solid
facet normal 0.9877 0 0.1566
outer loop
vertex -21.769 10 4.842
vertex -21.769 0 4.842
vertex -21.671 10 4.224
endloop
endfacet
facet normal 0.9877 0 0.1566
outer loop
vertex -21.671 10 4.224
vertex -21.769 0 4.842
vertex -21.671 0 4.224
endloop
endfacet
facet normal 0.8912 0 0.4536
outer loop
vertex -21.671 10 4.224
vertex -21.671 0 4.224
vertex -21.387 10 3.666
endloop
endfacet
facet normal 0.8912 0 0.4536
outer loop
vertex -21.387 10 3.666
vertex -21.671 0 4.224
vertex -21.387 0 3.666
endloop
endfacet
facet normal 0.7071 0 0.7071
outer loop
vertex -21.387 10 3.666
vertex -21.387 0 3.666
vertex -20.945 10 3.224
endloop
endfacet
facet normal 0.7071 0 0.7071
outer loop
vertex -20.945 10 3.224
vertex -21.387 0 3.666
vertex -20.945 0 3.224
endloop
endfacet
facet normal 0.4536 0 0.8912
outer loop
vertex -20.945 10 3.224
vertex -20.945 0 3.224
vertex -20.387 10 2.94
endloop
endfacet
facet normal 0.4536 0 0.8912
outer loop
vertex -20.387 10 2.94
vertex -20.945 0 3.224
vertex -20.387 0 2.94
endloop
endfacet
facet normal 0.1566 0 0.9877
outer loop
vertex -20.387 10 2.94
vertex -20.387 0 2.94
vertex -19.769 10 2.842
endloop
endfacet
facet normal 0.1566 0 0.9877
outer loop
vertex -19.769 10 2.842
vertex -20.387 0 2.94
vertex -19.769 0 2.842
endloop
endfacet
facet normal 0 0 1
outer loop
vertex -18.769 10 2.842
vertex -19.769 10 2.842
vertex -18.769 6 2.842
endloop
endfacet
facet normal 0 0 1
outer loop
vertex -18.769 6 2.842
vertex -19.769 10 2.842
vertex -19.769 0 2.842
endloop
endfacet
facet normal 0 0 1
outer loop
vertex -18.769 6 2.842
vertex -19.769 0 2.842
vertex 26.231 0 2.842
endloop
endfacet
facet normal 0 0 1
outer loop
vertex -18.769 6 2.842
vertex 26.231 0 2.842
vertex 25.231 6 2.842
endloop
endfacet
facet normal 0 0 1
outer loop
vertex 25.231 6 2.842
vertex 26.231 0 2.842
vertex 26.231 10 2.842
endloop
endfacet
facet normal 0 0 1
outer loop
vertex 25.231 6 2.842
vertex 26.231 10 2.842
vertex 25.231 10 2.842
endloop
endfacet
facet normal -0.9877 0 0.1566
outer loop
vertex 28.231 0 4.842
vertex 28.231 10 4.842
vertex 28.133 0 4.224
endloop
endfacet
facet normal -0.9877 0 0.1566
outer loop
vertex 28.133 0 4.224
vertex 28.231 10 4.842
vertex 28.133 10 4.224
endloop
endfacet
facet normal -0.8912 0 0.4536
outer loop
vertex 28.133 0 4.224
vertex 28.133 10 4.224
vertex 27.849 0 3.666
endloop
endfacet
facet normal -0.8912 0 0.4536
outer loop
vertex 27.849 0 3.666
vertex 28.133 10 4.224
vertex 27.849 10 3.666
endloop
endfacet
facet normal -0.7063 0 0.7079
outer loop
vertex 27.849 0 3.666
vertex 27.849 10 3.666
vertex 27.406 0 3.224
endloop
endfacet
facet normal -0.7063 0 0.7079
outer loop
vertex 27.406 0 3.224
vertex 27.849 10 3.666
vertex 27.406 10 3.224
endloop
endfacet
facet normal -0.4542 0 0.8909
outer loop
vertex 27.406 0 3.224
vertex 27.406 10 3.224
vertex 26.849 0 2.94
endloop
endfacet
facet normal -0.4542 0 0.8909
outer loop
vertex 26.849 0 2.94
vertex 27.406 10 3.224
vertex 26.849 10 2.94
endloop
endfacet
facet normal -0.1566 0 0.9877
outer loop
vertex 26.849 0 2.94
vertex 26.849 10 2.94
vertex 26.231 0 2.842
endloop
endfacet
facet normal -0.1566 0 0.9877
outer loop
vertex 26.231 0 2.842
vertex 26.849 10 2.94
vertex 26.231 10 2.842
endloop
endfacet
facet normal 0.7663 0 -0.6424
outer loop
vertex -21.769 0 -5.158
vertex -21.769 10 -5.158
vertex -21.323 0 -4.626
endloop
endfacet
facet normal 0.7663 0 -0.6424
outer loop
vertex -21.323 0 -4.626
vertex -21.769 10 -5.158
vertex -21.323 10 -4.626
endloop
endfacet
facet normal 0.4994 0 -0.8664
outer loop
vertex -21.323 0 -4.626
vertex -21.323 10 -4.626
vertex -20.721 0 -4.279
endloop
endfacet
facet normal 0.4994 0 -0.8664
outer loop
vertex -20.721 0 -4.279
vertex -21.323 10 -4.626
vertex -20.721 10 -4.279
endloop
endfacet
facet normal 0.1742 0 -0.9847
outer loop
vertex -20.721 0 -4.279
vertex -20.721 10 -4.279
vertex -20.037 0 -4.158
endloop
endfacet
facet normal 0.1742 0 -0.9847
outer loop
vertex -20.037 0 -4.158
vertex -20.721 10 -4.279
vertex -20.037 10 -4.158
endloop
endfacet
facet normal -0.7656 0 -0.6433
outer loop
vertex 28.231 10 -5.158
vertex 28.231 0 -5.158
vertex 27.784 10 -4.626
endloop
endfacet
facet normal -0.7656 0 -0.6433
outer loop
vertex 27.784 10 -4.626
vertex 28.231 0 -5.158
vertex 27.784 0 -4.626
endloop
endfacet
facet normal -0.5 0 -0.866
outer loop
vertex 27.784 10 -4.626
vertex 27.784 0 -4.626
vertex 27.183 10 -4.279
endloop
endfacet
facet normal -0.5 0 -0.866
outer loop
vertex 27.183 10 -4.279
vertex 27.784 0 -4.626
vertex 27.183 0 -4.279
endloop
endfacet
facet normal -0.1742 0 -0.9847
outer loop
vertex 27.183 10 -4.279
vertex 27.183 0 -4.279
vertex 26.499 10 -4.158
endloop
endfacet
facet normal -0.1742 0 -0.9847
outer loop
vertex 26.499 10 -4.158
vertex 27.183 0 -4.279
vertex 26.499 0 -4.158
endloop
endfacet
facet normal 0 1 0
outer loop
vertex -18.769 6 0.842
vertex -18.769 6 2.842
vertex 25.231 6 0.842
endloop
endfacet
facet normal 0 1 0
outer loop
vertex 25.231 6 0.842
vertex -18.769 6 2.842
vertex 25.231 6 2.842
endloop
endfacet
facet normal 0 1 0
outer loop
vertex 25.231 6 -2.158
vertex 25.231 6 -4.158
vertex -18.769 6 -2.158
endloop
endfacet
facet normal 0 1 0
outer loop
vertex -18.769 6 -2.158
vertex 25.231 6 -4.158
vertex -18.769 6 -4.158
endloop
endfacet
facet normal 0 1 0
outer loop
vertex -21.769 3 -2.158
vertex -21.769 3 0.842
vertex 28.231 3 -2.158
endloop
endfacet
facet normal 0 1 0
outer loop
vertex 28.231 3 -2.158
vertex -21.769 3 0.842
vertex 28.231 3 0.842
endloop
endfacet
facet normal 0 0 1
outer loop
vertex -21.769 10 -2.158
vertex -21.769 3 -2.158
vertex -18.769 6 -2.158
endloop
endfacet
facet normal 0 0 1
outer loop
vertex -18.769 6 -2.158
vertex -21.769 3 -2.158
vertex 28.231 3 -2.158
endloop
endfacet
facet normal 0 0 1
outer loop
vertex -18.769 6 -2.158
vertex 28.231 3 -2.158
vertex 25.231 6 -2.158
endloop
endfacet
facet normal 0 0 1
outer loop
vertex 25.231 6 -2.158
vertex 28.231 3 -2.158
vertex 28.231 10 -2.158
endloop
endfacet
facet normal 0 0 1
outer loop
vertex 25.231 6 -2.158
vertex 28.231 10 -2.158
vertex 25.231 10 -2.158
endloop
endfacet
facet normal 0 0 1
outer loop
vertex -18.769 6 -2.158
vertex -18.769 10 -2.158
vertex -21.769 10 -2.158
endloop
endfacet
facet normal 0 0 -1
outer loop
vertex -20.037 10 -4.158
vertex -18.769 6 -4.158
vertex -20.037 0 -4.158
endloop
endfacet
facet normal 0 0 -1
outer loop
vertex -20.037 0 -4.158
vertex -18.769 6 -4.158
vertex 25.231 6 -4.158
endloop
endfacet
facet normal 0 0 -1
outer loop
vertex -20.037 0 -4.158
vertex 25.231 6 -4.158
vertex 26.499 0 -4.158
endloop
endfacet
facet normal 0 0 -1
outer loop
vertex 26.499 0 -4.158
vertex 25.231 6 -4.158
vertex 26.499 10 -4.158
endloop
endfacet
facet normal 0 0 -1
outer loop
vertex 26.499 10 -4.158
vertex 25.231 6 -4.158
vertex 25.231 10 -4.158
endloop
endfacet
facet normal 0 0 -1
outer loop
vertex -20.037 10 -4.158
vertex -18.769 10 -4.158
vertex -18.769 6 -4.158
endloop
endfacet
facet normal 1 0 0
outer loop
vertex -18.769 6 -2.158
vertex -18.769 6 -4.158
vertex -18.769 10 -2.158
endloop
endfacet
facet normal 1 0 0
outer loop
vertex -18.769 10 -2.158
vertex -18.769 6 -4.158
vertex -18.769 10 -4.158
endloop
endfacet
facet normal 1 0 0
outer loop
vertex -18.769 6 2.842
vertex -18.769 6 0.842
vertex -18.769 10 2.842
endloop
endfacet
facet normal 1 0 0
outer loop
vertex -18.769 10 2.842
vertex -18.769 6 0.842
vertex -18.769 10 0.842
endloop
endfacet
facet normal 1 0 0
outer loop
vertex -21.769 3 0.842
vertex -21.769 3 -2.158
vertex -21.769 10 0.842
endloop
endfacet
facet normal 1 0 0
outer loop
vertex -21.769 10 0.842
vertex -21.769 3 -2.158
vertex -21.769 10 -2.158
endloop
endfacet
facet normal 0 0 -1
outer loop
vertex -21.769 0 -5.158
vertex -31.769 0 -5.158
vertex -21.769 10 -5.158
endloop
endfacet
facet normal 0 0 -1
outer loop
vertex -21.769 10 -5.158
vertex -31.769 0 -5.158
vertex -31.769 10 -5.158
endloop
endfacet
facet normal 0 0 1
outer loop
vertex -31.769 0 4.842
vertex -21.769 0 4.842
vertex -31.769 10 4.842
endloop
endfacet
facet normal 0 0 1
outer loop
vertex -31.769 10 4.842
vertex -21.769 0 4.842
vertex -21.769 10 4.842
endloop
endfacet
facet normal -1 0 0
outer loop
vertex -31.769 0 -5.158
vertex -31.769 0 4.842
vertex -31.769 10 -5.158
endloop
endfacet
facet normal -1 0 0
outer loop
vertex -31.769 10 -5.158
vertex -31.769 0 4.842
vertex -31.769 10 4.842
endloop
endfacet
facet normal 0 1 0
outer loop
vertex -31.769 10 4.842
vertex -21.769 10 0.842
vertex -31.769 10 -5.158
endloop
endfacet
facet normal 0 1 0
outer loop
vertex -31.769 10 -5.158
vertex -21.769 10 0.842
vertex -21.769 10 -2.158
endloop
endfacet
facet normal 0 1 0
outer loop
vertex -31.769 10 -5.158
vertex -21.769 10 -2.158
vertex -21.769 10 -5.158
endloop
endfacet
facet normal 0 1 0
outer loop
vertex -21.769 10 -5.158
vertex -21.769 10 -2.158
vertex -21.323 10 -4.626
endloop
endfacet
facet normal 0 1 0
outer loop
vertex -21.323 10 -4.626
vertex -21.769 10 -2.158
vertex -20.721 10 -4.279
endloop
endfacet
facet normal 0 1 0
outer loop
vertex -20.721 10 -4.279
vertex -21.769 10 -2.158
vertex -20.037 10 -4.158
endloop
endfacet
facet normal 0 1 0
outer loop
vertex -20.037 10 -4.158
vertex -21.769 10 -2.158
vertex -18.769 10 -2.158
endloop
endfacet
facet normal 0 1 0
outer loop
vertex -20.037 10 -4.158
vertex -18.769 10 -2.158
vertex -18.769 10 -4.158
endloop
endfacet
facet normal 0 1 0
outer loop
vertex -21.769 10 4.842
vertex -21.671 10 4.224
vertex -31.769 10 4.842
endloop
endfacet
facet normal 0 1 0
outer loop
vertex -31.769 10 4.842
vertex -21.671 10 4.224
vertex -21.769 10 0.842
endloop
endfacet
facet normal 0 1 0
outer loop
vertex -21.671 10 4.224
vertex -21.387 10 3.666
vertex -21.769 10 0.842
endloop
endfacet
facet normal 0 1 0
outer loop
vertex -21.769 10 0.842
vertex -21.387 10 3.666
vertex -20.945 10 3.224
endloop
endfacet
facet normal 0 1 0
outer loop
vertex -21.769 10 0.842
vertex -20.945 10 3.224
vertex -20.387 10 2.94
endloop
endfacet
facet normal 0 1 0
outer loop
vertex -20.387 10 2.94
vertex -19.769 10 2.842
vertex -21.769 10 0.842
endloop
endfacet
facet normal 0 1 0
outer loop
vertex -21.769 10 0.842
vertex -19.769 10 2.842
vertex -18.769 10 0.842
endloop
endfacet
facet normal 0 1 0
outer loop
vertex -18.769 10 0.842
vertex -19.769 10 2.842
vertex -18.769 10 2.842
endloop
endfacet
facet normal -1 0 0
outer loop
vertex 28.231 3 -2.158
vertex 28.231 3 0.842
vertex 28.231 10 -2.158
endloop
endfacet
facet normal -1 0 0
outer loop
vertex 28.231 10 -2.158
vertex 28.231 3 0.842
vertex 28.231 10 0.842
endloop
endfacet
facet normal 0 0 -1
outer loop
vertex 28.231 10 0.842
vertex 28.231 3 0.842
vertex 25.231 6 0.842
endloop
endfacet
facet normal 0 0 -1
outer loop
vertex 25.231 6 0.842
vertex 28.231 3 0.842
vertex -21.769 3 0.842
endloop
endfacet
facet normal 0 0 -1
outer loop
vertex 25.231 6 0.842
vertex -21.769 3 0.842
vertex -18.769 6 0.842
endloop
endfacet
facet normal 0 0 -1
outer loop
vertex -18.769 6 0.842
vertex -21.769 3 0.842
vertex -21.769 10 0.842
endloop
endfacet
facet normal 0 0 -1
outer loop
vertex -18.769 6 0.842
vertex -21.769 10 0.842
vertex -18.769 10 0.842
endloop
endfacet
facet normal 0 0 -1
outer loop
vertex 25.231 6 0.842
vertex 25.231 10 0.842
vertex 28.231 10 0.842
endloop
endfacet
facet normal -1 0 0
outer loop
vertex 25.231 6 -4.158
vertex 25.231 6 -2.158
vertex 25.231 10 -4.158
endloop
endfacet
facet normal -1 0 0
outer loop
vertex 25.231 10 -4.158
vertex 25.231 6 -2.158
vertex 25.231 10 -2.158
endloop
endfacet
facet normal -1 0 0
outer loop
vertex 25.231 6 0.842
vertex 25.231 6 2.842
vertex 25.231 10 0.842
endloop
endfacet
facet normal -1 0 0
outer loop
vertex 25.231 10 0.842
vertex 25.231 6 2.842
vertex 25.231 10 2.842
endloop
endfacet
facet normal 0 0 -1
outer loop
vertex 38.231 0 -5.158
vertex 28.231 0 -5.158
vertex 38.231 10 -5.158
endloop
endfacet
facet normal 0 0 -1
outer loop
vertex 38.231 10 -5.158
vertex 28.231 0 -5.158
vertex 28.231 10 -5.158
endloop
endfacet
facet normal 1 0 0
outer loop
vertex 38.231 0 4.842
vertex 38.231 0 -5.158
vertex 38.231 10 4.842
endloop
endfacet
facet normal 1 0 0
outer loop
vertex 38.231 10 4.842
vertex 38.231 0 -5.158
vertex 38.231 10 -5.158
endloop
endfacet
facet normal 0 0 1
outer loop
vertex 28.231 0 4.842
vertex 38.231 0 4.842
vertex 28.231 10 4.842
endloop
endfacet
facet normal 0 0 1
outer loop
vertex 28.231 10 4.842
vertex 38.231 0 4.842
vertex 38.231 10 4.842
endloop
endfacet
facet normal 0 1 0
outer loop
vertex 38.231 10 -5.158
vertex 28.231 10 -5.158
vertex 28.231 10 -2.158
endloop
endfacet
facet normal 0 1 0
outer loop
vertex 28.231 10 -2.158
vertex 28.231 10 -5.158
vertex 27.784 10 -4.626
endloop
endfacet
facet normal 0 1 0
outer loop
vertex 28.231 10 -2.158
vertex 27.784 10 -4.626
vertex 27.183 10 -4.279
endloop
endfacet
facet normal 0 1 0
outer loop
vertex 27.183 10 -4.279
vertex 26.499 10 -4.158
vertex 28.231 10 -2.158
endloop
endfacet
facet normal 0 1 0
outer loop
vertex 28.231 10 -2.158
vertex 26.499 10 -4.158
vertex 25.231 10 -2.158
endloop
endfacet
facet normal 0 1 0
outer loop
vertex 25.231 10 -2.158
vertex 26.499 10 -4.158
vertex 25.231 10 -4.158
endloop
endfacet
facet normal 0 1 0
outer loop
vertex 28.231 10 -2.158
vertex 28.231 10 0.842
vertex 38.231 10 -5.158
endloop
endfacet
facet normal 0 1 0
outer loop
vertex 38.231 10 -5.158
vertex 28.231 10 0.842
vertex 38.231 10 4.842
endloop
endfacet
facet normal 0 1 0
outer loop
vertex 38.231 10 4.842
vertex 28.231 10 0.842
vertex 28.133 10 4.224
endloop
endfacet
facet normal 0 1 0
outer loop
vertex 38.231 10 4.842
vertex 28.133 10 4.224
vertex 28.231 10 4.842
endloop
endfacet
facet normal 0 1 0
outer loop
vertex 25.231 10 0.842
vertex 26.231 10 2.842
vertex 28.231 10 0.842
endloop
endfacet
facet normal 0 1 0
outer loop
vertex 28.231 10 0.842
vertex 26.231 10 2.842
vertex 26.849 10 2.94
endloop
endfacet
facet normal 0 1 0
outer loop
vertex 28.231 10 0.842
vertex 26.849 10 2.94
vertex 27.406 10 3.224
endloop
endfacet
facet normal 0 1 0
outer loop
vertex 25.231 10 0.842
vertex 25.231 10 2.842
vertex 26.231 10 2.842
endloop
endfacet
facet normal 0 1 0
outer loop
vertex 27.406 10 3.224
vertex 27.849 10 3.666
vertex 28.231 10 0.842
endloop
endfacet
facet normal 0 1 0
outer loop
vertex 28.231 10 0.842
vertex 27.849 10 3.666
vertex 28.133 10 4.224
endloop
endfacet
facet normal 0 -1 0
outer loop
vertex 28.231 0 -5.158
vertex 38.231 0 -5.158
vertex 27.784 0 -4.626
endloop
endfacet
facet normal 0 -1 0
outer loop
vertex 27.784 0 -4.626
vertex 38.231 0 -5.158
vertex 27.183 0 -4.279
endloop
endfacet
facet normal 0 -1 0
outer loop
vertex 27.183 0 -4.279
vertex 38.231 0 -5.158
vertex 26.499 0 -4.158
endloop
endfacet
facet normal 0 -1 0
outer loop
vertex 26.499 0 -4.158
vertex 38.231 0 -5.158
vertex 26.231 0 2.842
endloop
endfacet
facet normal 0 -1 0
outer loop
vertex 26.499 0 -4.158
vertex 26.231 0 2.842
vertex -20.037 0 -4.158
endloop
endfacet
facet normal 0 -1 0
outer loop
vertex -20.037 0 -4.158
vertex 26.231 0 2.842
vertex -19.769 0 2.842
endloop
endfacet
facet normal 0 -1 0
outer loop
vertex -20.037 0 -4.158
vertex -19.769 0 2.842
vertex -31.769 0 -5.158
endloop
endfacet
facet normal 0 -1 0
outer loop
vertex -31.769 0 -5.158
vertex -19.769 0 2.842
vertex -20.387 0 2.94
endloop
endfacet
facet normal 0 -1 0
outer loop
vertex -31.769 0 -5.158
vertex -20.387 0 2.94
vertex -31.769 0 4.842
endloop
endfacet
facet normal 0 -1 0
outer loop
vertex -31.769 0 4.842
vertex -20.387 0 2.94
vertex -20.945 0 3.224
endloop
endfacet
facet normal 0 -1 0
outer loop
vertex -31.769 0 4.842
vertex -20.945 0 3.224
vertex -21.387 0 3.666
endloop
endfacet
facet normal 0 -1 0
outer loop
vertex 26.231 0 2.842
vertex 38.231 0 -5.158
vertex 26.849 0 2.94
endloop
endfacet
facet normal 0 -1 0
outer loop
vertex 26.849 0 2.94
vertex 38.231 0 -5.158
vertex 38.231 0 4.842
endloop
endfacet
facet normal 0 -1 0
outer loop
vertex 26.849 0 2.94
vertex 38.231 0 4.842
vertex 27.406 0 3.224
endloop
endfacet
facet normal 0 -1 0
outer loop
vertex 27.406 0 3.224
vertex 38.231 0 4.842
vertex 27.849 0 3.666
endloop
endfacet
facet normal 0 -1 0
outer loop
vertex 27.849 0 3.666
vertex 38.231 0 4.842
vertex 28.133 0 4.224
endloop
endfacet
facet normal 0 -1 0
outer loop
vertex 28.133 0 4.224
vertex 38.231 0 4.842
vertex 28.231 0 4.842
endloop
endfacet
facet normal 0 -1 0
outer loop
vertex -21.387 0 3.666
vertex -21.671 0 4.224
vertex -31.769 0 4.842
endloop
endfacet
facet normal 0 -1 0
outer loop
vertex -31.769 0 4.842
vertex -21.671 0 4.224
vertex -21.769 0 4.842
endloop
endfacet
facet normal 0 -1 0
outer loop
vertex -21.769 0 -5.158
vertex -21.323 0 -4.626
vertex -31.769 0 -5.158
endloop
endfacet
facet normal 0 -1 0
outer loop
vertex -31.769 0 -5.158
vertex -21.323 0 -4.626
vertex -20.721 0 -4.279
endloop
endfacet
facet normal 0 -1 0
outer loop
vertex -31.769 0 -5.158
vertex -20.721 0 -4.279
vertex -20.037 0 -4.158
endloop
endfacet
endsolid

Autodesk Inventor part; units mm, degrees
ref_plane "YZ Plane" through (0, 0, 0) normal (1, 0, 0) x (0, 1, 0)
ref_plane "XZ Plane" through (0, 0, 0) normal (0, 1, 0) x (-1, 0, 0)
ref_plane "XY Plane" through (0, 0, 0) normal (0, 0, 1) x (1, 0, 0)
sketch "스케치1" plane through (0, 0, 0) normal (0, 1, 0) x (-1, 0, 0)
  line L0 (21.7693, 2.842) -> (-28.2307, 2.842)
  line L1 (-28.2307, 2.842) -> (-28.2307, -0.158)
  line L2 (-28.2307, -0.158) -> (21.7693, -0.158)
  line L3 (21.7693, -0.158) -> (21.7693, 2.842)
  line L4 (21.7693, 4.842) -> (-28.2307, 4.842)
  line L5 (-28.2307, 4.842) -> (-28.2307, -4.158)
  line L6 (-28.2307, -4.158) -> (21.7693, -4.158)
  line L7 (21.7693, -4.158) -> (21.7693, 4.842)
  line L8 (-28.2307, 4.842) -> (-38.2307, 4.842)
  line L9 (-38.2307, 4.842) -> (-38.2307, -5.158)
  line L10 (-38.2307, -5.158) -> (-28.2307, -5.158)
  line L11 (-28.2307, -5.158) -> (-28.2307, 4.842)
  line L12 (21.7693, 4.842) -> (31.7693, 4.842)
  line L13 (31.7693, 4.842) -> (31.7693, -5.158)
  line L14 (31.7693, -5.158) -> (21.7693, -5.158)
  line L15 (21.7693, -5.158) -> (21.7693, 4.842)
  circle A0 centre (26.7693, -0.158) radius 1.75
  circle A1 centre (-33.2307, -0.158) radius 1.75
  line L16 (18.7693, 2.842) -> (18.7693, -4.158)
  line L17 (-25.2307, 2.842) -> (-25.2307, -4.158)
  line L18 (-28.2307, 0.842) -> (21.7693, 0.842)
  line L19 (21.7693, 0.842) -> (21.7693, -2.158)
  line L20 (21.7693, -2.158) -> (-28.2307, -2.158)
  line L21 (-28.2307, -2.158) -> (-28.2307, 0.842)
  point P0 (0, 0)
  point P1 (-28.2307, 2.842)
  point P2 (-25.2307, 0.842)
  point P3 (-25.2307, -2.158)
  point P4 (18.7693, -2.158)
  point P5 (18.7693, 0.842)
  dimension "d0" = 50
  dimension "d1" = 3
  dimension "d2" = 10
  dimension "d3" = 10
  dimension "d4" = 0
  dimension "d5" = 2
  dimension "d6" = 10
  dimension "d7" = 10
  dimension "d8" = 0
  dimension "d9" = 3.5
  dimension "d10" = 3.5
  dimension "d11" = 5
  dimension "d12" = 5
  dimension "d13" = 5
  dimension "d14" = 5
  dimension "d15" = 3
  dimension "d16" = 2
  dimension "d17" = 2
  dimension "d18" = 3
  dimension "d19" = 3
extrude "돌출1" add sketch "스케치1" along normal blind 10 contours L7 L12 L13 L14 L15 L3 | L5 L1 L11 L10 L9 L8 | A0 | A1
extrude "돌출2" add sketch "스케치1" along normal blind 10 contours L3 L18 L16 L0 | L17 L18 L1 L0 | L7 L6 L16 L20 | L17 L6 L5 L20
extrude "돌출3" add sketch "스케치1" along normal blind 3 contours L3 L2 L16 L18 | L16 L2 L17 L18 | L7 L20 L16 L2 | L17 L2 L1 L18 | L16 L20 L17 L2 | L17 L20 L5 L2
extrude "돌출4" add sketch "스케치1" along normal blind 6 contours L16 L18 L17 L0 | L16 L6 L17 L20
fillet "모깎기1" radius 2 4 edges at (28.2307, 5, -4.158) (-21.7693, 5, -4.158) (28.2307, 5, 2.842) (-21.7693, 5, 2.842)
sketch "스케치4" plane through (28.2307, 10, -2.158) normal (-1, 0, 0) x (0, 0, 1)
  point P0 (2.158, -10)
equation "\"d3\" = d2"
equation "\"d7\" = d6"
equation "\"d12\" = d11"
equation "\"d14\" = d13"
properties part number "B5-camera-fu"
